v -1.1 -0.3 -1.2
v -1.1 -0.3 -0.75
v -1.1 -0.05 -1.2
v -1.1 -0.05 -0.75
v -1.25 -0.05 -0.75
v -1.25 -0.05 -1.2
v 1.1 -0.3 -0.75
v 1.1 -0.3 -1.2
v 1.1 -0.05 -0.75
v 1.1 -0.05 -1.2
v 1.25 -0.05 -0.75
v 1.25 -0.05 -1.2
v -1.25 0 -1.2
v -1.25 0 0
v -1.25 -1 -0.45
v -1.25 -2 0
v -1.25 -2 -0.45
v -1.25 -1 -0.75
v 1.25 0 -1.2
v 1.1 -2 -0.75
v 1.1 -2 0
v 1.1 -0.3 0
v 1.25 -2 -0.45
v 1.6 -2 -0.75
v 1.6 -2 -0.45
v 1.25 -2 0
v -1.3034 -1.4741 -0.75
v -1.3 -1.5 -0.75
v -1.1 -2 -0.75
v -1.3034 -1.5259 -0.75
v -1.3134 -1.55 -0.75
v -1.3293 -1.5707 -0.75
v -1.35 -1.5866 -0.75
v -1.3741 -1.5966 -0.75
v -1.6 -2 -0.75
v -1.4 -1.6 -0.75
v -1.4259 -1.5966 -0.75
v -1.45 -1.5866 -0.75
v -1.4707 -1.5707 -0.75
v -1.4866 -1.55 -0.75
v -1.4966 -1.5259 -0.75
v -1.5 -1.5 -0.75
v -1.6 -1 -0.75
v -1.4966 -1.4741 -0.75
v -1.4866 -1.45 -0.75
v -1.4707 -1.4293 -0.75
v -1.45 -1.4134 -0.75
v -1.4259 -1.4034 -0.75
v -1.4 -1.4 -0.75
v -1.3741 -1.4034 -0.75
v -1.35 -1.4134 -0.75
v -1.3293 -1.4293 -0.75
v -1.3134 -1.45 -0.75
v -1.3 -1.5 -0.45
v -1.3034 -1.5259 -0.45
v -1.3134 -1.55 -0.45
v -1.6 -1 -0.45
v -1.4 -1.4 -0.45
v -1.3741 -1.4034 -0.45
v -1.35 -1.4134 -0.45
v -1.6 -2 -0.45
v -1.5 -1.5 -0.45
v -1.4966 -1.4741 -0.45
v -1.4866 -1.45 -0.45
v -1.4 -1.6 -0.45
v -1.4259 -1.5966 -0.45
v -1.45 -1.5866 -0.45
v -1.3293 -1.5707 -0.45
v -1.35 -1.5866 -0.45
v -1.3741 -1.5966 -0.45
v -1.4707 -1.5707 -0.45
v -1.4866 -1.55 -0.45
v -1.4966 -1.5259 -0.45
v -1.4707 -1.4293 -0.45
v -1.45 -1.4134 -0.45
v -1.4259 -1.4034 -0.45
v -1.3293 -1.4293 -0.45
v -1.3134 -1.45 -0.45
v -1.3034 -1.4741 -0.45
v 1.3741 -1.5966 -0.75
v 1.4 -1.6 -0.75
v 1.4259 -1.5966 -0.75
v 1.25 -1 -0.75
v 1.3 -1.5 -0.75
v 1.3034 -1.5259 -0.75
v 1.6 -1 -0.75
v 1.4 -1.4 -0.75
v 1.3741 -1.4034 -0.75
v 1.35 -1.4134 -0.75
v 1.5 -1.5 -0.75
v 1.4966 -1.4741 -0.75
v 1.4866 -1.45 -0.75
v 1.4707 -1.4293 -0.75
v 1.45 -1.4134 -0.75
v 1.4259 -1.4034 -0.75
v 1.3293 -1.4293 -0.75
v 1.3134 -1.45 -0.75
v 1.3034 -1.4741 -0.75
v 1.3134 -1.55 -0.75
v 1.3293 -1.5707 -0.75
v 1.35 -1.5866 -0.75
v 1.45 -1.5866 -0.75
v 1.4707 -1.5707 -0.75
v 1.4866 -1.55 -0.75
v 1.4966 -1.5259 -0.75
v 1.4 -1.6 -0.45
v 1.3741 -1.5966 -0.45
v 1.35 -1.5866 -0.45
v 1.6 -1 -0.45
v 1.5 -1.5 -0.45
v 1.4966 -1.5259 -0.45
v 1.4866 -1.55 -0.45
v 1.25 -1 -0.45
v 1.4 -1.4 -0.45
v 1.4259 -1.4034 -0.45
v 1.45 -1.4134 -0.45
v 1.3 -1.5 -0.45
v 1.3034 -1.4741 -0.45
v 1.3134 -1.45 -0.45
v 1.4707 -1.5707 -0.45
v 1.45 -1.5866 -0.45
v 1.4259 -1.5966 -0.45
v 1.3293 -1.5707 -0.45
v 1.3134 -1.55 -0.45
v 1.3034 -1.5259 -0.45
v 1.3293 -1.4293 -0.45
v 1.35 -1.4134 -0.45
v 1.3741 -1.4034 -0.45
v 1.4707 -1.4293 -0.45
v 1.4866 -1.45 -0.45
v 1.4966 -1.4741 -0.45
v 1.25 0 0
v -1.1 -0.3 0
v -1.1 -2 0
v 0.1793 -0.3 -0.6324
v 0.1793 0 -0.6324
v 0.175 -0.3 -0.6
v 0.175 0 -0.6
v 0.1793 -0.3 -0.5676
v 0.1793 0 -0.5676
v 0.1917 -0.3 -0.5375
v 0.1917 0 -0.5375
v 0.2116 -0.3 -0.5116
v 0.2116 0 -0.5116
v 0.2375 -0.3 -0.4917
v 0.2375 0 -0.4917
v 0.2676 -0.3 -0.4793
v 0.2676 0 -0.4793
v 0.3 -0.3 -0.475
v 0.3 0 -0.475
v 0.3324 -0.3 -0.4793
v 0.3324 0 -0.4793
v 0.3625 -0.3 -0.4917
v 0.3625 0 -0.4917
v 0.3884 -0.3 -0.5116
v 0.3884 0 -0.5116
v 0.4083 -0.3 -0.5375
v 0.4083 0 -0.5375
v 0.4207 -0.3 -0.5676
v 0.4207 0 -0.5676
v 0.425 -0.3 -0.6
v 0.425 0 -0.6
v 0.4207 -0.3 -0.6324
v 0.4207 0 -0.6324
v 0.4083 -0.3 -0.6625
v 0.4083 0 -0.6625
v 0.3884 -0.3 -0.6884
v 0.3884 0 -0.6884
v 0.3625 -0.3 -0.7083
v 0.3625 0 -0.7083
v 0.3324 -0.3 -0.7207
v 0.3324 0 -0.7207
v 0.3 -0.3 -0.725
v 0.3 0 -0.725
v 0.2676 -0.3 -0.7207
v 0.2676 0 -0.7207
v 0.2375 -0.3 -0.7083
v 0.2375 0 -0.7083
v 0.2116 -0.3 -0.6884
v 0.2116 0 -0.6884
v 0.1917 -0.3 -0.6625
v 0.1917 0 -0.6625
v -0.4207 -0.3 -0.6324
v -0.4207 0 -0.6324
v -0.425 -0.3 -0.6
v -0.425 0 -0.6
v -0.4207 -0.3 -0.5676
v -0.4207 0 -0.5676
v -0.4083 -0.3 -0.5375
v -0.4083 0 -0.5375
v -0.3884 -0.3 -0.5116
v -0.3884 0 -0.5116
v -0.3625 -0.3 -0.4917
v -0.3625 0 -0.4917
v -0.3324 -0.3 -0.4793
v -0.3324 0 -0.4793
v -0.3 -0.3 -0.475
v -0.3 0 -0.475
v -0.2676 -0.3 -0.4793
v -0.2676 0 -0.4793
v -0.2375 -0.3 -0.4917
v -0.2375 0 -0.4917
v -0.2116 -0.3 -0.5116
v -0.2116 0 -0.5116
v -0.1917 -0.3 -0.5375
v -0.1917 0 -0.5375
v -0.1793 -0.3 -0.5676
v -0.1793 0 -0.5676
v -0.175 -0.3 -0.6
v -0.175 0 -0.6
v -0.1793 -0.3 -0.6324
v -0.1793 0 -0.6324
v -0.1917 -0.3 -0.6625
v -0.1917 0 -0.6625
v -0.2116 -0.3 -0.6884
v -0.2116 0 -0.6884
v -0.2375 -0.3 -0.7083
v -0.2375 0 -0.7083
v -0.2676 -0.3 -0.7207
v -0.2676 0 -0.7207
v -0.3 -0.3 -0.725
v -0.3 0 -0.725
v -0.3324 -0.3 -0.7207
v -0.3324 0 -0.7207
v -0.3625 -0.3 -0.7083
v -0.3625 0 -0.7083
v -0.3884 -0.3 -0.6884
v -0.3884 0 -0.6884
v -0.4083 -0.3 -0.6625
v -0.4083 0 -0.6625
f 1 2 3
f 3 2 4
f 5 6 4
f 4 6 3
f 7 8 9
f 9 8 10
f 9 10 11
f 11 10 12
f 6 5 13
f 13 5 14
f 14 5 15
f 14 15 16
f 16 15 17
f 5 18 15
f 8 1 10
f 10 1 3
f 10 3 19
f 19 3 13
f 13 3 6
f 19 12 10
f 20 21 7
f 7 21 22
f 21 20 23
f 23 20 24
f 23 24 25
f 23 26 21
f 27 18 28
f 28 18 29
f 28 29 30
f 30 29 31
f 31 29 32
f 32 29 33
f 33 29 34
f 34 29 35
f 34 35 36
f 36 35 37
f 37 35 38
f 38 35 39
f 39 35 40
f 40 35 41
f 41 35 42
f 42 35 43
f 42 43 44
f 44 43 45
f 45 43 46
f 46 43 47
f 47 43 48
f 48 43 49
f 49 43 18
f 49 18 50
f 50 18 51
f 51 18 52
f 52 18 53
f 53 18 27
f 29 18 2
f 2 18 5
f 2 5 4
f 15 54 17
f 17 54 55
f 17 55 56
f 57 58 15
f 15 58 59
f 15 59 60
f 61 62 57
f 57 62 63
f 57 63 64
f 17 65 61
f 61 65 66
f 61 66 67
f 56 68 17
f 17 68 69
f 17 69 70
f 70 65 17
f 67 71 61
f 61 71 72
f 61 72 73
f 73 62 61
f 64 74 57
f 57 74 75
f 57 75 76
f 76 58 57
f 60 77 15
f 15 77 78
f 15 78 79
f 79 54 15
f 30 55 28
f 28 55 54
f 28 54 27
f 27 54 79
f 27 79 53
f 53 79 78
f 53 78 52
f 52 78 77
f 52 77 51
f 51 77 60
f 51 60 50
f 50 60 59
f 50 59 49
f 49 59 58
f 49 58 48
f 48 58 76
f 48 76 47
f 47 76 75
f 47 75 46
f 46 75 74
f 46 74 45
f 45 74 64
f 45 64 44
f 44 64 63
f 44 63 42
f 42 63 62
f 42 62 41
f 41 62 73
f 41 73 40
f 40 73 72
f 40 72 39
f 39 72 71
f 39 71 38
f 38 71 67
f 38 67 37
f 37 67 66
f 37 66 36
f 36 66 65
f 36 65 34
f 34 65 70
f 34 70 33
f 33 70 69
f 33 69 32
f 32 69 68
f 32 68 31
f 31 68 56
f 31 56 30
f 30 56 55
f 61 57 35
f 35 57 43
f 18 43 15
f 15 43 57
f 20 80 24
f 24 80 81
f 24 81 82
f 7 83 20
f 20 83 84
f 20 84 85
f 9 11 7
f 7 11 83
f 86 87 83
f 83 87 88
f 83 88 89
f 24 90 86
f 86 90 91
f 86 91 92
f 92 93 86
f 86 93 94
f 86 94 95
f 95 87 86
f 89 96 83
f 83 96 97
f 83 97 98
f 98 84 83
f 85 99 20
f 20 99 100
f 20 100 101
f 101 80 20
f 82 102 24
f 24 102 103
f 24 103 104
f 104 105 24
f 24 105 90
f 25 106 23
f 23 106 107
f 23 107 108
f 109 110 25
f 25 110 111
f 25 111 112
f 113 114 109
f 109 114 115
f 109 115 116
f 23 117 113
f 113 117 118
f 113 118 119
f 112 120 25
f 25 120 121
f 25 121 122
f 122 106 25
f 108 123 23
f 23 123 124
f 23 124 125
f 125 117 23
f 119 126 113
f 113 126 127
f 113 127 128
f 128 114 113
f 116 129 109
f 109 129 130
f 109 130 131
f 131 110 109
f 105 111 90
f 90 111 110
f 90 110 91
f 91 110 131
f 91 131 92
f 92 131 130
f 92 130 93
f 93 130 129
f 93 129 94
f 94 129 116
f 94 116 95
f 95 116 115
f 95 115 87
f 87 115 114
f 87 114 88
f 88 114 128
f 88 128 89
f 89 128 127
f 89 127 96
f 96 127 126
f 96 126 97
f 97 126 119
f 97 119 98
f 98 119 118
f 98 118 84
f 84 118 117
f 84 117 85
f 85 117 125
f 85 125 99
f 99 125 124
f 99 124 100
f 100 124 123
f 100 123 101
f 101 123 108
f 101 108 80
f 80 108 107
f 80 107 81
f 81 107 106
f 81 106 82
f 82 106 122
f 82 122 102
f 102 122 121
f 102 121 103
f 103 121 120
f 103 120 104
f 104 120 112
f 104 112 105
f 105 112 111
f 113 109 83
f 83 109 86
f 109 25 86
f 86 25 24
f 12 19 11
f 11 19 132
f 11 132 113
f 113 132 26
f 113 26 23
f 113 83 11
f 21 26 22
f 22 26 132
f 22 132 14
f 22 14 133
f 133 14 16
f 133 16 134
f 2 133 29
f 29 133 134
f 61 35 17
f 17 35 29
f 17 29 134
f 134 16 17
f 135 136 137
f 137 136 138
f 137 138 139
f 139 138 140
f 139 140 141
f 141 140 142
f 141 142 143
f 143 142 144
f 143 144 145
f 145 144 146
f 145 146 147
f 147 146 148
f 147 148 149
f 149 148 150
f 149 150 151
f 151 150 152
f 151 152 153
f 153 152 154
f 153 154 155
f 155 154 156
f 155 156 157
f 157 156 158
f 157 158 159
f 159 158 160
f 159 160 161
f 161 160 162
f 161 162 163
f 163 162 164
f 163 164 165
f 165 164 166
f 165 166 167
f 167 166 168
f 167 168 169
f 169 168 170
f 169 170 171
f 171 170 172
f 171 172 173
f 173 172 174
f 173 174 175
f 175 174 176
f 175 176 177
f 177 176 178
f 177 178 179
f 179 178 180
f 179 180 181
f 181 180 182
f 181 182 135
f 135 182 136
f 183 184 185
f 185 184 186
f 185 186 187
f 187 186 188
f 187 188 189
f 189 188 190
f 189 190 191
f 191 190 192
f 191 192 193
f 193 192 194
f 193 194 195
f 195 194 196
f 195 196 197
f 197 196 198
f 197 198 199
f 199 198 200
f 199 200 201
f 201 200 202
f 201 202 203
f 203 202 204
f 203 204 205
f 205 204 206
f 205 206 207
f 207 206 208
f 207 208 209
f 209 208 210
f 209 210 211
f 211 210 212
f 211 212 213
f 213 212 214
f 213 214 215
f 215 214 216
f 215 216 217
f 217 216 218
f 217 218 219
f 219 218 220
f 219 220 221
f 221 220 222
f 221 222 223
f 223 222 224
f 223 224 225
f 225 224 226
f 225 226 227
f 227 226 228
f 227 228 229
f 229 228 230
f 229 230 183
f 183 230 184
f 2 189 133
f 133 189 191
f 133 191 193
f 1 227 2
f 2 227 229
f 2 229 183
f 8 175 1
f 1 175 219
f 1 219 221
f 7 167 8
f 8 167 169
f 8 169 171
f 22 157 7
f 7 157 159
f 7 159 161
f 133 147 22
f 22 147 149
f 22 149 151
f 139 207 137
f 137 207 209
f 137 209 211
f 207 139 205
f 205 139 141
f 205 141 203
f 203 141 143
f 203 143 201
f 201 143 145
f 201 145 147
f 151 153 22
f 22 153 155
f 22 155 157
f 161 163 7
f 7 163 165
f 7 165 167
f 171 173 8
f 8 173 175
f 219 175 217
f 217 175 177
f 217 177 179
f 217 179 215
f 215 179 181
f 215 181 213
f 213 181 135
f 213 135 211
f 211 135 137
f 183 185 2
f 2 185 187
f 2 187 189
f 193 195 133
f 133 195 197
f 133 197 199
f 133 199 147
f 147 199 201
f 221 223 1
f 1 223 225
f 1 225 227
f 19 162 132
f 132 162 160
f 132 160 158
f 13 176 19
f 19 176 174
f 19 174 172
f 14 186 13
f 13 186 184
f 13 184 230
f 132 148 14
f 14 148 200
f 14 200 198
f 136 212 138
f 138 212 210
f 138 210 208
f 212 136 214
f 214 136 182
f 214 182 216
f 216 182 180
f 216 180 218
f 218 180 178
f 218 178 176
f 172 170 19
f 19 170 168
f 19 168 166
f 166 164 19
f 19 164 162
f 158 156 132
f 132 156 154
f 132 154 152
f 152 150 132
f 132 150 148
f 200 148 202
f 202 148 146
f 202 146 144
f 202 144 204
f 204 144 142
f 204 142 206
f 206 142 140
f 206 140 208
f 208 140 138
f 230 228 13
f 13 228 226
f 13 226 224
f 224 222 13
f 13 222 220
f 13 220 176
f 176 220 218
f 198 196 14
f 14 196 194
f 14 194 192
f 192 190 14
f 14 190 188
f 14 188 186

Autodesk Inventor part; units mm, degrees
ref_plane "YZ Plane" through (0, 0, 0) normal (1, 0, 0) x (0, 1, 0)
sketch "Boceto1" plane through (0, 0, 0) normal (0, 1, 0) x (-1, 0, 0)
  line L0 (0, 0) -> (1.35, 0)
  line L1 (1.35, 0) -> (1.35, -1.2)
  line L2 (1.35, -1.2) -> (-1.35, -1.2)
  line L3 (-1.35, -1.2) -> (-1.35, 0)
  line L4 (-1.35, 0) -> (0, 0)
  circle A0 centre (0.3, -0.6) radius 0.125
  circle A1 centre (-0.3, -0.6) radius 0.125
  dimension "d4" = 1.35
  dimension "d5" = 1.2
  dimension "d6" = 2.7
  dimension "d7" = 1.2
extrude "Extrusión1" add sketch "Boceto1" against normal blind 0.3
sketch "Boceto6" plane through (0, -0.3, 0) normal (0, -1, 0) x (1, 0, 0)
  line L0 (1.35, 0) -> (-1.35, 0) projected
  line L1 (-1.35, 0) -> (-1.35, -1.2) projected
  line L2 (-1.35, -1.2) -> (1.35, -1.2) projected
  line L3 (1.35, -1.2) -> (1.35, 0) projected
  line L4 (1.1, -1.2) -> (1.1, 0)
  line L5 (-1.1, -1.2) -> (-1.1, 0)
  line L6 (1.35, 0) -> (-1.35, 0) projected
  line L7 (1.25, 0) -> (1.1, 0)
  line L8 (1.1, 0) -> (1.1, -1.2)
  line L9 (1.1, -1.2) -> (1.25, -1.2)
  line L10 (1.25, -1.2) -> (1.25, 0)
  line L11 (-1.1, -1.2) -> (-1.25, -1.2)
  line L12 (-1.25, -1.2) -> (-1.25, 0)
  line L13 (-1.25, 0) -> (-1.1, 0)
  line L14 (-1.1, 0) -> (-1.1, -1.2)
  line L15 (-1.35, -1.2) -> (1.35, -1.2) projected
  line L16 (-1.25, -1.2) -> (-1.35, -1.2)
  line L17 (-1.35, -1.2) -> (-1.35, 0)
  line L18 (-1.35, 0) -> (-1.25, 0)
  line L19 (-1.25, 0) -> (-1.25, -1.2)
  line L20 (1.35, -1.2) -> (1.25, -1.2)
  line L21 (1.25, -1.2) -> (1.25, 0)
  line L22 (1.25, 0) -> (1.35, 0)
  line L23 (1.35, 0) -> (1.35, -1.2)
  point P0 (0, 0)
extrude "Extrusión5" add sketch "Boceto6" along normal blind 1.7 contours L3 L2 L10 L0 | L10 L2 L4 L0 | L5 L2 L12 L0 | L12 L2 L1 L0
ref_plane "Plano de trabajo3" through (1.35, 0, -2.8) normal (0, 0, -1) x (-1, 0, 0)
sketch "Boceto9" plane through (1.35, 0, -1.2) normal (0, 0, -1) x (-1, 0, 0)
  line L0 (0.1, -2.25) -> (0.1, -1.25) projected
  line L1 (2.6, -1.25) -> (2.6, -2.25) projected
  line L2 (2.7, 0) -> (2.7, -2) projected
  line L3 (0, 0) -> (0, -2) projected
  line L4 (0.1, -2.25) -> (0, -2.25)
  line L5 (0, -2.25) -> (0, 0)
  line L6 (0, 0) -> (0.1, 0)
  line L7 (0.1, 0) -> (0.1, -2.25)
  line L8 (2.6, -2.25) -> (2.7, -2.25)
  line L9 (2.7, -2.25) -> (2.7, 0)
  line L10 (2.7, 0) -> (2.6, 0)
  line L11 (2.6, 0) -> (2.6, -2.25)
  point P0 (1.35, 0)
extrude "Extrusión8" cut sketch "Boceto9" against normal blind 4
ref_plane "Plano de trabajo1" through (0, 0, -0.6) normal (0, 0, 1) x (1, 0, 0)
sketch "Boceto11" plane through (0, 0, -0.6) normal (0, 0, 1) x (1, 0, 0)
  circle A0 centre (1.4, -1.75) radius 0.1 projected
  line L0 (1.6, -1.25) -> (1.25, -1.25) projected
  line L1 (1.25, -2.25) -> (1.6, -2.25) projected
  line L2 (1.6, -2.25) -> (1.6, -1.25) projected
  line L3 (-1.1, -1.25) -> (-1.6, -1.25) projected
  line L4 (-1.6, -1.25) -> (-1.6, -2.25) projected
  line L5 (-1.6, -2.25) -> (-1.1, -2.25) projected
  circle A1 centre (-1.4, -1.75) radius 0.1 projected
  line L6 (-1.1, -2.25) -> (-1.1, -1.25) projected
  line L7 (1.25, -1.25) -> (1.25, -2.25) projected
  line L8 (1.1, -2) -> (1.25, -2) projected
  line L9 (1.25, -1.25) -> (1.6, -1.25)
  line L10 (-1.6, -1.25) -> (-1.1, -1.25)
  circle A2 centre (1.4, -1.75) radius 0.1
  line L11 (1.25, -1) -> (1.6, -1)
  line L12 (1.6, -1) -> (1.6, -2)
  line L13 (1.6, -2) -> (1.25, -2)
  line L14 (1.25, -2) -> (1.25, -1)
  line L15 (-1.6, -1) -> (-1.1, -1)
  line L16 (-1.1, -1) -> (-1.1, -2)
  line L17 (-1.1, -2) -> (-1.6, -2)
  line L18 (-1.6, -2) -> (-1.6, -1)
  circle A3 centre (-1.4, -1.5) radius 0.1
  circle A4 centre (1.4, -1.5) radius 0.1
  point P0 (0, 0)
extrude "Extrusión9" add sketch "Boceto11" along normal mid plane 0.3 contours A0 | L2 L13 L7 L0 | L0 L14 L11 L12 | L6 L17 L4 L3 | L3 L18 L15 L16 | A1
sketch "Boceto12" plane through (0, -2, 0) normal (0, -1, 0) x (1, 0, 0)
  line L0 (-1.25, -0.75) -> (-1.25, -1.2) projected
  line L1 (1.25, -1.2) -> (1.25, -0.75) projected
  line L2 (1.1, -1.2) -> (1.25, -1.2) projected
  line L3 (-1.25, -1.2) -> (-1.1, -1.2) projected
  line L4 (-1.25, -0.75) -> (-1.1, -0.75)
  line L5 (-1.1, -0.75) -> (-1.1, -1.2)
  line L6 (-1.1, -1.2) -> (-1.25, -1.2)
  line L7 (-1.25, -1.2) -> (-1.25, -0.75)
  line L8 (1.25, -0.75) -> (1.1, -0.75)
  line L9 (1.1, -0.75) -> (1.1, -1.2)
  line L10 (1.1, -1.2) -> (1.25, -1.2)
  line L11 (1.25, -1.2) -> (1.25, -0.75)
  point P0 (0, 0)
extrude "Extrusión10" cut sketch "Boceto12" against normal blind 1.95
properties part number "soporteCamaraA"
